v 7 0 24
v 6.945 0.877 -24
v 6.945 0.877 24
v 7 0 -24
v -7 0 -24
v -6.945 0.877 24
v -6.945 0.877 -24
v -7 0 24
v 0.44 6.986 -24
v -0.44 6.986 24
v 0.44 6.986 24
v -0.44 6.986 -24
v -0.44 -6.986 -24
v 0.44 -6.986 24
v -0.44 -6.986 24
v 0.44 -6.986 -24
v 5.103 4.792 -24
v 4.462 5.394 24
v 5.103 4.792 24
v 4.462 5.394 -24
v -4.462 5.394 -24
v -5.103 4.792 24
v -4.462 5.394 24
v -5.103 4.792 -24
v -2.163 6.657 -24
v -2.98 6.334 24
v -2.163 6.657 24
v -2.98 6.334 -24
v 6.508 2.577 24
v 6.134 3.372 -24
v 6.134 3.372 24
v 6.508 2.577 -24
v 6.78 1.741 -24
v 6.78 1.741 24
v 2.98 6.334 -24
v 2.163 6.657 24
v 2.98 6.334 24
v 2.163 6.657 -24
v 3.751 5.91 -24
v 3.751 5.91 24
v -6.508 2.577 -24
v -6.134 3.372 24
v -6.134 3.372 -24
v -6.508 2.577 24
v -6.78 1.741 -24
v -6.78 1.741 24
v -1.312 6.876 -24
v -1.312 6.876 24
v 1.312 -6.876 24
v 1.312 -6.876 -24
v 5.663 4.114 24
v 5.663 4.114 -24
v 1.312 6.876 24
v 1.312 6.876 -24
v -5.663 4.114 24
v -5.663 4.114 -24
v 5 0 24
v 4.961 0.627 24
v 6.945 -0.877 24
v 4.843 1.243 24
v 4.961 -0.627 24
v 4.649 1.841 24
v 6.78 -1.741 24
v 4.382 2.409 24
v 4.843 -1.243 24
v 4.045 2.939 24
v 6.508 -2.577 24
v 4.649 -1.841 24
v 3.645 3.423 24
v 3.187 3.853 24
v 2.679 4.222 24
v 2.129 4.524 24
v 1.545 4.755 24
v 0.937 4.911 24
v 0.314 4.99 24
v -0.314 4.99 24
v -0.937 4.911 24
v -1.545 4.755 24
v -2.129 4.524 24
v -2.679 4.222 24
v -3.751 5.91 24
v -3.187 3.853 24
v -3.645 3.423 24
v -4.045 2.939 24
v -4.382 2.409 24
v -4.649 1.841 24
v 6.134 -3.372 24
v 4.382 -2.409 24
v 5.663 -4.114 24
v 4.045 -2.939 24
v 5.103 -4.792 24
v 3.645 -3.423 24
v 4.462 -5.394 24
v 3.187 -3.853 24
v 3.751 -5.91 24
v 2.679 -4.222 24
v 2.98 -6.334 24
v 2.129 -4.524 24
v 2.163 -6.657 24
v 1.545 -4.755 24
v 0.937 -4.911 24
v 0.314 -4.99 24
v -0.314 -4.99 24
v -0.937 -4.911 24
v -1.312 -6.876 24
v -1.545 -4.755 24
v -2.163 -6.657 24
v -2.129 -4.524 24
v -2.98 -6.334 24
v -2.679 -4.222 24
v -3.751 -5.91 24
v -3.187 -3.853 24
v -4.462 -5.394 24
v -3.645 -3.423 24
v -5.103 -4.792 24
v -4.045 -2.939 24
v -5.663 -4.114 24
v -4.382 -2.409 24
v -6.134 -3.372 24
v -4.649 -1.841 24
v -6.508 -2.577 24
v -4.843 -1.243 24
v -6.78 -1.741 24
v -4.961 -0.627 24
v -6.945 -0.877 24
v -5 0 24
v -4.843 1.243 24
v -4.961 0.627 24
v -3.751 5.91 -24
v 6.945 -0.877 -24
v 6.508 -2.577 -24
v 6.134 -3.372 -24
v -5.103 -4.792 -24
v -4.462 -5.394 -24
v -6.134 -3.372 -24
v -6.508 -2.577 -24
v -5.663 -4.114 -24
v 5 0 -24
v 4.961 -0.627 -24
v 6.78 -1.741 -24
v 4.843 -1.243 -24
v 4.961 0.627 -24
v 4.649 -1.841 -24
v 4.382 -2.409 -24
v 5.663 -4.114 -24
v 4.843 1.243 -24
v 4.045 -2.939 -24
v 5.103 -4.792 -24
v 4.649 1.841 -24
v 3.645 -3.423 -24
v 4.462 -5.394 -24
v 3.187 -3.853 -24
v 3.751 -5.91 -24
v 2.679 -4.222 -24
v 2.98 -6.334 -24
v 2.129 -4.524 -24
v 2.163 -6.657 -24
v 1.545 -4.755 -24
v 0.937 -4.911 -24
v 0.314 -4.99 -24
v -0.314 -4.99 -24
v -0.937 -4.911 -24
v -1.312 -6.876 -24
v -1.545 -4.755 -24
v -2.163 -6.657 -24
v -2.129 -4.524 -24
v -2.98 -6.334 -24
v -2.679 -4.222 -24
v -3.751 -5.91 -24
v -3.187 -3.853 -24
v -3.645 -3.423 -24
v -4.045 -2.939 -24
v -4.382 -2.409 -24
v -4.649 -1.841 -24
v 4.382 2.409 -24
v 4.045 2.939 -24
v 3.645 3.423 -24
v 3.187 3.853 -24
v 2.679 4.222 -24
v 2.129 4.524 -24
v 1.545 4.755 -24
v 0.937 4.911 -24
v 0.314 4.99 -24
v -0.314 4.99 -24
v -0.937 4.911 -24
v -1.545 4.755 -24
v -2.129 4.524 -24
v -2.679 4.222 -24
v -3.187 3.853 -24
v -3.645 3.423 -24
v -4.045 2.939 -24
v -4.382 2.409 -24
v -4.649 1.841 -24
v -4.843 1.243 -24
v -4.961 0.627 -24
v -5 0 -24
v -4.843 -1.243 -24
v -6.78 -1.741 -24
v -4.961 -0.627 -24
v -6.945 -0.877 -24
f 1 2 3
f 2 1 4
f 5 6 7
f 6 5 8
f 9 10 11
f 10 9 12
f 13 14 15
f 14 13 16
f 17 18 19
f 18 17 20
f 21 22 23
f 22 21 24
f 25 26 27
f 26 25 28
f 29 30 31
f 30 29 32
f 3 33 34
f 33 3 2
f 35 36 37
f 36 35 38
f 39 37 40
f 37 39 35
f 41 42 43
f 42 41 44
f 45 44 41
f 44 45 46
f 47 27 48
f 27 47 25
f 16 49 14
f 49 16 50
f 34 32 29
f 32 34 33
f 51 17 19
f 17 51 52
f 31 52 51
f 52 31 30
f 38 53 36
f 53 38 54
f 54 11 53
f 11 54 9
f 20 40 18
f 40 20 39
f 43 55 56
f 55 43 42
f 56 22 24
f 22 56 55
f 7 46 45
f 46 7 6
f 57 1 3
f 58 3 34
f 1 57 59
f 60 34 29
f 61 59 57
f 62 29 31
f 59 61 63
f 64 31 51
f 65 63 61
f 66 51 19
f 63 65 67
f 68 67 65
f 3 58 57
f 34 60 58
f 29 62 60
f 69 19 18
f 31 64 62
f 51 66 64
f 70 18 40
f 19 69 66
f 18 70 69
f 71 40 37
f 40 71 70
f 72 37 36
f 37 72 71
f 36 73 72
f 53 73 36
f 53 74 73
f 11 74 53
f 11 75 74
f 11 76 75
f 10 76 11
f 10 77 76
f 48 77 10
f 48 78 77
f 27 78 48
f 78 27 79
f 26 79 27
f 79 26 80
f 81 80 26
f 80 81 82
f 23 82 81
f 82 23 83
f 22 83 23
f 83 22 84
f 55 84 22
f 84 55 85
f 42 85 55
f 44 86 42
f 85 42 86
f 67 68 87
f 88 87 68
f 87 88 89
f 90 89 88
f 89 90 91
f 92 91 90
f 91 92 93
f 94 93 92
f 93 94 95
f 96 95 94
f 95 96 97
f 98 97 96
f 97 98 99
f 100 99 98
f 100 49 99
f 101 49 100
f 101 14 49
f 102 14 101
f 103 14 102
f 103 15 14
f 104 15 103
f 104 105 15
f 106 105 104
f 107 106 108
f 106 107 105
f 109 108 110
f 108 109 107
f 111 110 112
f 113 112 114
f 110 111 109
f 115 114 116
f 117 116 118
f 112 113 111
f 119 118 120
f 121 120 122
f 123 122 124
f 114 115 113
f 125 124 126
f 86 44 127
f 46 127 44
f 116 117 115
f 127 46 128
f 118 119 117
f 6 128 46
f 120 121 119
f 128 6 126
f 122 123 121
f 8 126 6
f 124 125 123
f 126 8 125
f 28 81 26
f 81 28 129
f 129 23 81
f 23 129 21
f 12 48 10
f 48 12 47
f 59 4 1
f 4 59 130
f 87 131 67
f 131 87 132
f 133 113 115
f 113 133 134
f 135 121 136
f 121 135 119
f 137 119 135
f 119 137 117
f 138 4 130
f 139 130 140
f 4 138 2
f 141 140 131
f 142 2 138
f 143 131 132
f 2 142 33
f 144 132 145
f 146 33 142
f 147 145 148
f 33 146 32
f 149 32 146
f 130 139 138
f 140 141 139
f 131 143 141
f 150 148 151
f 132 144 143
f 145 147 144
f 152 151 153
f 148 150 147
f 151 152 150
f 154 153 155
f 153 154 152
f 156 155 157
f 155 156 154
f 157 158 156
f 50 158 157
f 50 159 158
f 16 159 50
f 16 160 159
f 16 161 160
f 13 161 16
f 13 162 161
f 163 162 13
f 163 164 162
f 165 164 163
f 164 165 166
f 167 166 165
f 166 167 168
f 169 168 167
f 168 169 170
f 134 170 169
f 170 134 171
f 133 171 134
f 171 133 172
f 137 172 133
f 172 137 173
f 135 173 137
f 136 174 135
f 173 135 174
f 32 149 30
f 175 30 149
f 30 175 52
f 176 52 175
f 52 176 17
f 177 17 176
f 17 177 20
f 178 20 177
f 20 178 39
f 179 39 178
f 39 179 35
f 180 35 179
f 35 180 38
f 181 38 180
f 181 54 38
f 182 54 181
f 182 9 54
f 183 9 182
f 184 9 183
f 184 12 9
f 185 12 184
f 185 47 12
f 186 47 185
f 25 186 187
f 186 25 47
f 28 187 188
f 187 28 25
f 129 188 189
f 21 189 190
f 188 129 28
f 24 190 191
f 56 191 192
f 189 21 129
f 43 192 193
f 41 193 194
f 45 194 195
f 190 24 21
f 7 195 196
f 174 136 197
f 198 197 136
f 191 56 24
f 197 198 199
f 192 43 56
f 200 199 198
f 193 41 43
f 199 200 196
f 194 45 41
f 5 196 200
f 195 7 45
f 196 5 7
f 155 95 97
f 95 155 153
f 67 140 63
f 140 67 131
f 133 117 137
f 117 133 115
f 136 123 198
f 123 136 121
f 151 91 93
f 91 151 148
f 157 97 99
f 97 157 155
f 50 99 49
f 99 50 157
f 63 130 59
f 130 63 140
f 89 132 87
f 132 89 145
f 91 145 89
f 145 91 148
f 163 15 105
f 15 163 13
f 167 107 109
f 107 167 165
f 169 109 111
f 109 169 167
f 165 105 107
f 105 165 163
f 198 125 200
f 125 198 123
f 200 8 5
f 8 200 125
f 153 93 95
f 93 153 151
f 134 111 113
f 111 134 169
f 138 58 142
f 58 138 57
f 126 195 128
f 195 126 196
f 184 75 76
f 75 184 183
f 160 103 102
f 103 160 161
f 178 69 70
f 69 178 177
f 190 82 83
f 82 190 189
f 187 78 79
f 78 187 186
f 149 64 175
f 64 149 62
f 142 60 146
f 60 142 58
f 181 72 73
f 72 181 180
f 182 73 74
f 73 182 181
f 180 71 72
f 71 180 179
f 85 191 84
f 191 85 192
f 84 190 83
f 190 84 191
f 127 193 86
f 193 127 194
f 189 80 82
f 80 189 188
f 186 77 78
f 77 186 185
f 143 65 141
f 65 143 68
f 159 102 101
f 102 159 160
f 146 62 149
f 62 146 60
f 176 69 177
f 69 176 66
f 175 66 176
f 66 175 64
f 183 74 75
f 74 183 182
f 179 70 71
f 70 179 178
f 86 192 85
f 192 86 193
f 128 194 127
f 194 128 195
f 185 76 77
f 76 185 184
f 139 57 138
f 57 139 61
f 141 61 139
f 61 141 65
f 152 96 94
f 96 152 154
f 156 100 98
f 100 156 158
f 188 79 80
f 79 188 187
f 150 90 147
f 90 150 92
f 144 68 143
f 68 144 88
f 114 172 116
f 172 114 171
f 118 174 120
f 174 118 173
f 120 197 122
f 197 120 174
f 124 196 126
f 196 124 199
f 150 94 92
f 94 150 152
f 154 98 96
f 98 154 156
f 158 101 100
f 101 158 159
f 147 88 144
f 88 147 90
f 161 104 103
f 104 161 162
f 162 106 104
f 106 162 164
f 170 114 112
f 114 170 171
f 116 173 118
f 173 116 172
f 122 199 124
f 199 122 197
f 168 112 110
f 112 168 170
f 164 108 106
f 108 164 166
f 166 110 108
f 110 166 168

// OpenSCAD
$fn = 50;


difference() {
	union() {
		translate(v = [0, 0, -24.0000000000]) {
			cylinder(h = 48, r = 7.0000000000);
		}
	}
	union() {
		translate(v = [0, 0, -100.0000000000]) {
			cylinder(h = 200, r = 5.0000000000);
		}
	}
}
